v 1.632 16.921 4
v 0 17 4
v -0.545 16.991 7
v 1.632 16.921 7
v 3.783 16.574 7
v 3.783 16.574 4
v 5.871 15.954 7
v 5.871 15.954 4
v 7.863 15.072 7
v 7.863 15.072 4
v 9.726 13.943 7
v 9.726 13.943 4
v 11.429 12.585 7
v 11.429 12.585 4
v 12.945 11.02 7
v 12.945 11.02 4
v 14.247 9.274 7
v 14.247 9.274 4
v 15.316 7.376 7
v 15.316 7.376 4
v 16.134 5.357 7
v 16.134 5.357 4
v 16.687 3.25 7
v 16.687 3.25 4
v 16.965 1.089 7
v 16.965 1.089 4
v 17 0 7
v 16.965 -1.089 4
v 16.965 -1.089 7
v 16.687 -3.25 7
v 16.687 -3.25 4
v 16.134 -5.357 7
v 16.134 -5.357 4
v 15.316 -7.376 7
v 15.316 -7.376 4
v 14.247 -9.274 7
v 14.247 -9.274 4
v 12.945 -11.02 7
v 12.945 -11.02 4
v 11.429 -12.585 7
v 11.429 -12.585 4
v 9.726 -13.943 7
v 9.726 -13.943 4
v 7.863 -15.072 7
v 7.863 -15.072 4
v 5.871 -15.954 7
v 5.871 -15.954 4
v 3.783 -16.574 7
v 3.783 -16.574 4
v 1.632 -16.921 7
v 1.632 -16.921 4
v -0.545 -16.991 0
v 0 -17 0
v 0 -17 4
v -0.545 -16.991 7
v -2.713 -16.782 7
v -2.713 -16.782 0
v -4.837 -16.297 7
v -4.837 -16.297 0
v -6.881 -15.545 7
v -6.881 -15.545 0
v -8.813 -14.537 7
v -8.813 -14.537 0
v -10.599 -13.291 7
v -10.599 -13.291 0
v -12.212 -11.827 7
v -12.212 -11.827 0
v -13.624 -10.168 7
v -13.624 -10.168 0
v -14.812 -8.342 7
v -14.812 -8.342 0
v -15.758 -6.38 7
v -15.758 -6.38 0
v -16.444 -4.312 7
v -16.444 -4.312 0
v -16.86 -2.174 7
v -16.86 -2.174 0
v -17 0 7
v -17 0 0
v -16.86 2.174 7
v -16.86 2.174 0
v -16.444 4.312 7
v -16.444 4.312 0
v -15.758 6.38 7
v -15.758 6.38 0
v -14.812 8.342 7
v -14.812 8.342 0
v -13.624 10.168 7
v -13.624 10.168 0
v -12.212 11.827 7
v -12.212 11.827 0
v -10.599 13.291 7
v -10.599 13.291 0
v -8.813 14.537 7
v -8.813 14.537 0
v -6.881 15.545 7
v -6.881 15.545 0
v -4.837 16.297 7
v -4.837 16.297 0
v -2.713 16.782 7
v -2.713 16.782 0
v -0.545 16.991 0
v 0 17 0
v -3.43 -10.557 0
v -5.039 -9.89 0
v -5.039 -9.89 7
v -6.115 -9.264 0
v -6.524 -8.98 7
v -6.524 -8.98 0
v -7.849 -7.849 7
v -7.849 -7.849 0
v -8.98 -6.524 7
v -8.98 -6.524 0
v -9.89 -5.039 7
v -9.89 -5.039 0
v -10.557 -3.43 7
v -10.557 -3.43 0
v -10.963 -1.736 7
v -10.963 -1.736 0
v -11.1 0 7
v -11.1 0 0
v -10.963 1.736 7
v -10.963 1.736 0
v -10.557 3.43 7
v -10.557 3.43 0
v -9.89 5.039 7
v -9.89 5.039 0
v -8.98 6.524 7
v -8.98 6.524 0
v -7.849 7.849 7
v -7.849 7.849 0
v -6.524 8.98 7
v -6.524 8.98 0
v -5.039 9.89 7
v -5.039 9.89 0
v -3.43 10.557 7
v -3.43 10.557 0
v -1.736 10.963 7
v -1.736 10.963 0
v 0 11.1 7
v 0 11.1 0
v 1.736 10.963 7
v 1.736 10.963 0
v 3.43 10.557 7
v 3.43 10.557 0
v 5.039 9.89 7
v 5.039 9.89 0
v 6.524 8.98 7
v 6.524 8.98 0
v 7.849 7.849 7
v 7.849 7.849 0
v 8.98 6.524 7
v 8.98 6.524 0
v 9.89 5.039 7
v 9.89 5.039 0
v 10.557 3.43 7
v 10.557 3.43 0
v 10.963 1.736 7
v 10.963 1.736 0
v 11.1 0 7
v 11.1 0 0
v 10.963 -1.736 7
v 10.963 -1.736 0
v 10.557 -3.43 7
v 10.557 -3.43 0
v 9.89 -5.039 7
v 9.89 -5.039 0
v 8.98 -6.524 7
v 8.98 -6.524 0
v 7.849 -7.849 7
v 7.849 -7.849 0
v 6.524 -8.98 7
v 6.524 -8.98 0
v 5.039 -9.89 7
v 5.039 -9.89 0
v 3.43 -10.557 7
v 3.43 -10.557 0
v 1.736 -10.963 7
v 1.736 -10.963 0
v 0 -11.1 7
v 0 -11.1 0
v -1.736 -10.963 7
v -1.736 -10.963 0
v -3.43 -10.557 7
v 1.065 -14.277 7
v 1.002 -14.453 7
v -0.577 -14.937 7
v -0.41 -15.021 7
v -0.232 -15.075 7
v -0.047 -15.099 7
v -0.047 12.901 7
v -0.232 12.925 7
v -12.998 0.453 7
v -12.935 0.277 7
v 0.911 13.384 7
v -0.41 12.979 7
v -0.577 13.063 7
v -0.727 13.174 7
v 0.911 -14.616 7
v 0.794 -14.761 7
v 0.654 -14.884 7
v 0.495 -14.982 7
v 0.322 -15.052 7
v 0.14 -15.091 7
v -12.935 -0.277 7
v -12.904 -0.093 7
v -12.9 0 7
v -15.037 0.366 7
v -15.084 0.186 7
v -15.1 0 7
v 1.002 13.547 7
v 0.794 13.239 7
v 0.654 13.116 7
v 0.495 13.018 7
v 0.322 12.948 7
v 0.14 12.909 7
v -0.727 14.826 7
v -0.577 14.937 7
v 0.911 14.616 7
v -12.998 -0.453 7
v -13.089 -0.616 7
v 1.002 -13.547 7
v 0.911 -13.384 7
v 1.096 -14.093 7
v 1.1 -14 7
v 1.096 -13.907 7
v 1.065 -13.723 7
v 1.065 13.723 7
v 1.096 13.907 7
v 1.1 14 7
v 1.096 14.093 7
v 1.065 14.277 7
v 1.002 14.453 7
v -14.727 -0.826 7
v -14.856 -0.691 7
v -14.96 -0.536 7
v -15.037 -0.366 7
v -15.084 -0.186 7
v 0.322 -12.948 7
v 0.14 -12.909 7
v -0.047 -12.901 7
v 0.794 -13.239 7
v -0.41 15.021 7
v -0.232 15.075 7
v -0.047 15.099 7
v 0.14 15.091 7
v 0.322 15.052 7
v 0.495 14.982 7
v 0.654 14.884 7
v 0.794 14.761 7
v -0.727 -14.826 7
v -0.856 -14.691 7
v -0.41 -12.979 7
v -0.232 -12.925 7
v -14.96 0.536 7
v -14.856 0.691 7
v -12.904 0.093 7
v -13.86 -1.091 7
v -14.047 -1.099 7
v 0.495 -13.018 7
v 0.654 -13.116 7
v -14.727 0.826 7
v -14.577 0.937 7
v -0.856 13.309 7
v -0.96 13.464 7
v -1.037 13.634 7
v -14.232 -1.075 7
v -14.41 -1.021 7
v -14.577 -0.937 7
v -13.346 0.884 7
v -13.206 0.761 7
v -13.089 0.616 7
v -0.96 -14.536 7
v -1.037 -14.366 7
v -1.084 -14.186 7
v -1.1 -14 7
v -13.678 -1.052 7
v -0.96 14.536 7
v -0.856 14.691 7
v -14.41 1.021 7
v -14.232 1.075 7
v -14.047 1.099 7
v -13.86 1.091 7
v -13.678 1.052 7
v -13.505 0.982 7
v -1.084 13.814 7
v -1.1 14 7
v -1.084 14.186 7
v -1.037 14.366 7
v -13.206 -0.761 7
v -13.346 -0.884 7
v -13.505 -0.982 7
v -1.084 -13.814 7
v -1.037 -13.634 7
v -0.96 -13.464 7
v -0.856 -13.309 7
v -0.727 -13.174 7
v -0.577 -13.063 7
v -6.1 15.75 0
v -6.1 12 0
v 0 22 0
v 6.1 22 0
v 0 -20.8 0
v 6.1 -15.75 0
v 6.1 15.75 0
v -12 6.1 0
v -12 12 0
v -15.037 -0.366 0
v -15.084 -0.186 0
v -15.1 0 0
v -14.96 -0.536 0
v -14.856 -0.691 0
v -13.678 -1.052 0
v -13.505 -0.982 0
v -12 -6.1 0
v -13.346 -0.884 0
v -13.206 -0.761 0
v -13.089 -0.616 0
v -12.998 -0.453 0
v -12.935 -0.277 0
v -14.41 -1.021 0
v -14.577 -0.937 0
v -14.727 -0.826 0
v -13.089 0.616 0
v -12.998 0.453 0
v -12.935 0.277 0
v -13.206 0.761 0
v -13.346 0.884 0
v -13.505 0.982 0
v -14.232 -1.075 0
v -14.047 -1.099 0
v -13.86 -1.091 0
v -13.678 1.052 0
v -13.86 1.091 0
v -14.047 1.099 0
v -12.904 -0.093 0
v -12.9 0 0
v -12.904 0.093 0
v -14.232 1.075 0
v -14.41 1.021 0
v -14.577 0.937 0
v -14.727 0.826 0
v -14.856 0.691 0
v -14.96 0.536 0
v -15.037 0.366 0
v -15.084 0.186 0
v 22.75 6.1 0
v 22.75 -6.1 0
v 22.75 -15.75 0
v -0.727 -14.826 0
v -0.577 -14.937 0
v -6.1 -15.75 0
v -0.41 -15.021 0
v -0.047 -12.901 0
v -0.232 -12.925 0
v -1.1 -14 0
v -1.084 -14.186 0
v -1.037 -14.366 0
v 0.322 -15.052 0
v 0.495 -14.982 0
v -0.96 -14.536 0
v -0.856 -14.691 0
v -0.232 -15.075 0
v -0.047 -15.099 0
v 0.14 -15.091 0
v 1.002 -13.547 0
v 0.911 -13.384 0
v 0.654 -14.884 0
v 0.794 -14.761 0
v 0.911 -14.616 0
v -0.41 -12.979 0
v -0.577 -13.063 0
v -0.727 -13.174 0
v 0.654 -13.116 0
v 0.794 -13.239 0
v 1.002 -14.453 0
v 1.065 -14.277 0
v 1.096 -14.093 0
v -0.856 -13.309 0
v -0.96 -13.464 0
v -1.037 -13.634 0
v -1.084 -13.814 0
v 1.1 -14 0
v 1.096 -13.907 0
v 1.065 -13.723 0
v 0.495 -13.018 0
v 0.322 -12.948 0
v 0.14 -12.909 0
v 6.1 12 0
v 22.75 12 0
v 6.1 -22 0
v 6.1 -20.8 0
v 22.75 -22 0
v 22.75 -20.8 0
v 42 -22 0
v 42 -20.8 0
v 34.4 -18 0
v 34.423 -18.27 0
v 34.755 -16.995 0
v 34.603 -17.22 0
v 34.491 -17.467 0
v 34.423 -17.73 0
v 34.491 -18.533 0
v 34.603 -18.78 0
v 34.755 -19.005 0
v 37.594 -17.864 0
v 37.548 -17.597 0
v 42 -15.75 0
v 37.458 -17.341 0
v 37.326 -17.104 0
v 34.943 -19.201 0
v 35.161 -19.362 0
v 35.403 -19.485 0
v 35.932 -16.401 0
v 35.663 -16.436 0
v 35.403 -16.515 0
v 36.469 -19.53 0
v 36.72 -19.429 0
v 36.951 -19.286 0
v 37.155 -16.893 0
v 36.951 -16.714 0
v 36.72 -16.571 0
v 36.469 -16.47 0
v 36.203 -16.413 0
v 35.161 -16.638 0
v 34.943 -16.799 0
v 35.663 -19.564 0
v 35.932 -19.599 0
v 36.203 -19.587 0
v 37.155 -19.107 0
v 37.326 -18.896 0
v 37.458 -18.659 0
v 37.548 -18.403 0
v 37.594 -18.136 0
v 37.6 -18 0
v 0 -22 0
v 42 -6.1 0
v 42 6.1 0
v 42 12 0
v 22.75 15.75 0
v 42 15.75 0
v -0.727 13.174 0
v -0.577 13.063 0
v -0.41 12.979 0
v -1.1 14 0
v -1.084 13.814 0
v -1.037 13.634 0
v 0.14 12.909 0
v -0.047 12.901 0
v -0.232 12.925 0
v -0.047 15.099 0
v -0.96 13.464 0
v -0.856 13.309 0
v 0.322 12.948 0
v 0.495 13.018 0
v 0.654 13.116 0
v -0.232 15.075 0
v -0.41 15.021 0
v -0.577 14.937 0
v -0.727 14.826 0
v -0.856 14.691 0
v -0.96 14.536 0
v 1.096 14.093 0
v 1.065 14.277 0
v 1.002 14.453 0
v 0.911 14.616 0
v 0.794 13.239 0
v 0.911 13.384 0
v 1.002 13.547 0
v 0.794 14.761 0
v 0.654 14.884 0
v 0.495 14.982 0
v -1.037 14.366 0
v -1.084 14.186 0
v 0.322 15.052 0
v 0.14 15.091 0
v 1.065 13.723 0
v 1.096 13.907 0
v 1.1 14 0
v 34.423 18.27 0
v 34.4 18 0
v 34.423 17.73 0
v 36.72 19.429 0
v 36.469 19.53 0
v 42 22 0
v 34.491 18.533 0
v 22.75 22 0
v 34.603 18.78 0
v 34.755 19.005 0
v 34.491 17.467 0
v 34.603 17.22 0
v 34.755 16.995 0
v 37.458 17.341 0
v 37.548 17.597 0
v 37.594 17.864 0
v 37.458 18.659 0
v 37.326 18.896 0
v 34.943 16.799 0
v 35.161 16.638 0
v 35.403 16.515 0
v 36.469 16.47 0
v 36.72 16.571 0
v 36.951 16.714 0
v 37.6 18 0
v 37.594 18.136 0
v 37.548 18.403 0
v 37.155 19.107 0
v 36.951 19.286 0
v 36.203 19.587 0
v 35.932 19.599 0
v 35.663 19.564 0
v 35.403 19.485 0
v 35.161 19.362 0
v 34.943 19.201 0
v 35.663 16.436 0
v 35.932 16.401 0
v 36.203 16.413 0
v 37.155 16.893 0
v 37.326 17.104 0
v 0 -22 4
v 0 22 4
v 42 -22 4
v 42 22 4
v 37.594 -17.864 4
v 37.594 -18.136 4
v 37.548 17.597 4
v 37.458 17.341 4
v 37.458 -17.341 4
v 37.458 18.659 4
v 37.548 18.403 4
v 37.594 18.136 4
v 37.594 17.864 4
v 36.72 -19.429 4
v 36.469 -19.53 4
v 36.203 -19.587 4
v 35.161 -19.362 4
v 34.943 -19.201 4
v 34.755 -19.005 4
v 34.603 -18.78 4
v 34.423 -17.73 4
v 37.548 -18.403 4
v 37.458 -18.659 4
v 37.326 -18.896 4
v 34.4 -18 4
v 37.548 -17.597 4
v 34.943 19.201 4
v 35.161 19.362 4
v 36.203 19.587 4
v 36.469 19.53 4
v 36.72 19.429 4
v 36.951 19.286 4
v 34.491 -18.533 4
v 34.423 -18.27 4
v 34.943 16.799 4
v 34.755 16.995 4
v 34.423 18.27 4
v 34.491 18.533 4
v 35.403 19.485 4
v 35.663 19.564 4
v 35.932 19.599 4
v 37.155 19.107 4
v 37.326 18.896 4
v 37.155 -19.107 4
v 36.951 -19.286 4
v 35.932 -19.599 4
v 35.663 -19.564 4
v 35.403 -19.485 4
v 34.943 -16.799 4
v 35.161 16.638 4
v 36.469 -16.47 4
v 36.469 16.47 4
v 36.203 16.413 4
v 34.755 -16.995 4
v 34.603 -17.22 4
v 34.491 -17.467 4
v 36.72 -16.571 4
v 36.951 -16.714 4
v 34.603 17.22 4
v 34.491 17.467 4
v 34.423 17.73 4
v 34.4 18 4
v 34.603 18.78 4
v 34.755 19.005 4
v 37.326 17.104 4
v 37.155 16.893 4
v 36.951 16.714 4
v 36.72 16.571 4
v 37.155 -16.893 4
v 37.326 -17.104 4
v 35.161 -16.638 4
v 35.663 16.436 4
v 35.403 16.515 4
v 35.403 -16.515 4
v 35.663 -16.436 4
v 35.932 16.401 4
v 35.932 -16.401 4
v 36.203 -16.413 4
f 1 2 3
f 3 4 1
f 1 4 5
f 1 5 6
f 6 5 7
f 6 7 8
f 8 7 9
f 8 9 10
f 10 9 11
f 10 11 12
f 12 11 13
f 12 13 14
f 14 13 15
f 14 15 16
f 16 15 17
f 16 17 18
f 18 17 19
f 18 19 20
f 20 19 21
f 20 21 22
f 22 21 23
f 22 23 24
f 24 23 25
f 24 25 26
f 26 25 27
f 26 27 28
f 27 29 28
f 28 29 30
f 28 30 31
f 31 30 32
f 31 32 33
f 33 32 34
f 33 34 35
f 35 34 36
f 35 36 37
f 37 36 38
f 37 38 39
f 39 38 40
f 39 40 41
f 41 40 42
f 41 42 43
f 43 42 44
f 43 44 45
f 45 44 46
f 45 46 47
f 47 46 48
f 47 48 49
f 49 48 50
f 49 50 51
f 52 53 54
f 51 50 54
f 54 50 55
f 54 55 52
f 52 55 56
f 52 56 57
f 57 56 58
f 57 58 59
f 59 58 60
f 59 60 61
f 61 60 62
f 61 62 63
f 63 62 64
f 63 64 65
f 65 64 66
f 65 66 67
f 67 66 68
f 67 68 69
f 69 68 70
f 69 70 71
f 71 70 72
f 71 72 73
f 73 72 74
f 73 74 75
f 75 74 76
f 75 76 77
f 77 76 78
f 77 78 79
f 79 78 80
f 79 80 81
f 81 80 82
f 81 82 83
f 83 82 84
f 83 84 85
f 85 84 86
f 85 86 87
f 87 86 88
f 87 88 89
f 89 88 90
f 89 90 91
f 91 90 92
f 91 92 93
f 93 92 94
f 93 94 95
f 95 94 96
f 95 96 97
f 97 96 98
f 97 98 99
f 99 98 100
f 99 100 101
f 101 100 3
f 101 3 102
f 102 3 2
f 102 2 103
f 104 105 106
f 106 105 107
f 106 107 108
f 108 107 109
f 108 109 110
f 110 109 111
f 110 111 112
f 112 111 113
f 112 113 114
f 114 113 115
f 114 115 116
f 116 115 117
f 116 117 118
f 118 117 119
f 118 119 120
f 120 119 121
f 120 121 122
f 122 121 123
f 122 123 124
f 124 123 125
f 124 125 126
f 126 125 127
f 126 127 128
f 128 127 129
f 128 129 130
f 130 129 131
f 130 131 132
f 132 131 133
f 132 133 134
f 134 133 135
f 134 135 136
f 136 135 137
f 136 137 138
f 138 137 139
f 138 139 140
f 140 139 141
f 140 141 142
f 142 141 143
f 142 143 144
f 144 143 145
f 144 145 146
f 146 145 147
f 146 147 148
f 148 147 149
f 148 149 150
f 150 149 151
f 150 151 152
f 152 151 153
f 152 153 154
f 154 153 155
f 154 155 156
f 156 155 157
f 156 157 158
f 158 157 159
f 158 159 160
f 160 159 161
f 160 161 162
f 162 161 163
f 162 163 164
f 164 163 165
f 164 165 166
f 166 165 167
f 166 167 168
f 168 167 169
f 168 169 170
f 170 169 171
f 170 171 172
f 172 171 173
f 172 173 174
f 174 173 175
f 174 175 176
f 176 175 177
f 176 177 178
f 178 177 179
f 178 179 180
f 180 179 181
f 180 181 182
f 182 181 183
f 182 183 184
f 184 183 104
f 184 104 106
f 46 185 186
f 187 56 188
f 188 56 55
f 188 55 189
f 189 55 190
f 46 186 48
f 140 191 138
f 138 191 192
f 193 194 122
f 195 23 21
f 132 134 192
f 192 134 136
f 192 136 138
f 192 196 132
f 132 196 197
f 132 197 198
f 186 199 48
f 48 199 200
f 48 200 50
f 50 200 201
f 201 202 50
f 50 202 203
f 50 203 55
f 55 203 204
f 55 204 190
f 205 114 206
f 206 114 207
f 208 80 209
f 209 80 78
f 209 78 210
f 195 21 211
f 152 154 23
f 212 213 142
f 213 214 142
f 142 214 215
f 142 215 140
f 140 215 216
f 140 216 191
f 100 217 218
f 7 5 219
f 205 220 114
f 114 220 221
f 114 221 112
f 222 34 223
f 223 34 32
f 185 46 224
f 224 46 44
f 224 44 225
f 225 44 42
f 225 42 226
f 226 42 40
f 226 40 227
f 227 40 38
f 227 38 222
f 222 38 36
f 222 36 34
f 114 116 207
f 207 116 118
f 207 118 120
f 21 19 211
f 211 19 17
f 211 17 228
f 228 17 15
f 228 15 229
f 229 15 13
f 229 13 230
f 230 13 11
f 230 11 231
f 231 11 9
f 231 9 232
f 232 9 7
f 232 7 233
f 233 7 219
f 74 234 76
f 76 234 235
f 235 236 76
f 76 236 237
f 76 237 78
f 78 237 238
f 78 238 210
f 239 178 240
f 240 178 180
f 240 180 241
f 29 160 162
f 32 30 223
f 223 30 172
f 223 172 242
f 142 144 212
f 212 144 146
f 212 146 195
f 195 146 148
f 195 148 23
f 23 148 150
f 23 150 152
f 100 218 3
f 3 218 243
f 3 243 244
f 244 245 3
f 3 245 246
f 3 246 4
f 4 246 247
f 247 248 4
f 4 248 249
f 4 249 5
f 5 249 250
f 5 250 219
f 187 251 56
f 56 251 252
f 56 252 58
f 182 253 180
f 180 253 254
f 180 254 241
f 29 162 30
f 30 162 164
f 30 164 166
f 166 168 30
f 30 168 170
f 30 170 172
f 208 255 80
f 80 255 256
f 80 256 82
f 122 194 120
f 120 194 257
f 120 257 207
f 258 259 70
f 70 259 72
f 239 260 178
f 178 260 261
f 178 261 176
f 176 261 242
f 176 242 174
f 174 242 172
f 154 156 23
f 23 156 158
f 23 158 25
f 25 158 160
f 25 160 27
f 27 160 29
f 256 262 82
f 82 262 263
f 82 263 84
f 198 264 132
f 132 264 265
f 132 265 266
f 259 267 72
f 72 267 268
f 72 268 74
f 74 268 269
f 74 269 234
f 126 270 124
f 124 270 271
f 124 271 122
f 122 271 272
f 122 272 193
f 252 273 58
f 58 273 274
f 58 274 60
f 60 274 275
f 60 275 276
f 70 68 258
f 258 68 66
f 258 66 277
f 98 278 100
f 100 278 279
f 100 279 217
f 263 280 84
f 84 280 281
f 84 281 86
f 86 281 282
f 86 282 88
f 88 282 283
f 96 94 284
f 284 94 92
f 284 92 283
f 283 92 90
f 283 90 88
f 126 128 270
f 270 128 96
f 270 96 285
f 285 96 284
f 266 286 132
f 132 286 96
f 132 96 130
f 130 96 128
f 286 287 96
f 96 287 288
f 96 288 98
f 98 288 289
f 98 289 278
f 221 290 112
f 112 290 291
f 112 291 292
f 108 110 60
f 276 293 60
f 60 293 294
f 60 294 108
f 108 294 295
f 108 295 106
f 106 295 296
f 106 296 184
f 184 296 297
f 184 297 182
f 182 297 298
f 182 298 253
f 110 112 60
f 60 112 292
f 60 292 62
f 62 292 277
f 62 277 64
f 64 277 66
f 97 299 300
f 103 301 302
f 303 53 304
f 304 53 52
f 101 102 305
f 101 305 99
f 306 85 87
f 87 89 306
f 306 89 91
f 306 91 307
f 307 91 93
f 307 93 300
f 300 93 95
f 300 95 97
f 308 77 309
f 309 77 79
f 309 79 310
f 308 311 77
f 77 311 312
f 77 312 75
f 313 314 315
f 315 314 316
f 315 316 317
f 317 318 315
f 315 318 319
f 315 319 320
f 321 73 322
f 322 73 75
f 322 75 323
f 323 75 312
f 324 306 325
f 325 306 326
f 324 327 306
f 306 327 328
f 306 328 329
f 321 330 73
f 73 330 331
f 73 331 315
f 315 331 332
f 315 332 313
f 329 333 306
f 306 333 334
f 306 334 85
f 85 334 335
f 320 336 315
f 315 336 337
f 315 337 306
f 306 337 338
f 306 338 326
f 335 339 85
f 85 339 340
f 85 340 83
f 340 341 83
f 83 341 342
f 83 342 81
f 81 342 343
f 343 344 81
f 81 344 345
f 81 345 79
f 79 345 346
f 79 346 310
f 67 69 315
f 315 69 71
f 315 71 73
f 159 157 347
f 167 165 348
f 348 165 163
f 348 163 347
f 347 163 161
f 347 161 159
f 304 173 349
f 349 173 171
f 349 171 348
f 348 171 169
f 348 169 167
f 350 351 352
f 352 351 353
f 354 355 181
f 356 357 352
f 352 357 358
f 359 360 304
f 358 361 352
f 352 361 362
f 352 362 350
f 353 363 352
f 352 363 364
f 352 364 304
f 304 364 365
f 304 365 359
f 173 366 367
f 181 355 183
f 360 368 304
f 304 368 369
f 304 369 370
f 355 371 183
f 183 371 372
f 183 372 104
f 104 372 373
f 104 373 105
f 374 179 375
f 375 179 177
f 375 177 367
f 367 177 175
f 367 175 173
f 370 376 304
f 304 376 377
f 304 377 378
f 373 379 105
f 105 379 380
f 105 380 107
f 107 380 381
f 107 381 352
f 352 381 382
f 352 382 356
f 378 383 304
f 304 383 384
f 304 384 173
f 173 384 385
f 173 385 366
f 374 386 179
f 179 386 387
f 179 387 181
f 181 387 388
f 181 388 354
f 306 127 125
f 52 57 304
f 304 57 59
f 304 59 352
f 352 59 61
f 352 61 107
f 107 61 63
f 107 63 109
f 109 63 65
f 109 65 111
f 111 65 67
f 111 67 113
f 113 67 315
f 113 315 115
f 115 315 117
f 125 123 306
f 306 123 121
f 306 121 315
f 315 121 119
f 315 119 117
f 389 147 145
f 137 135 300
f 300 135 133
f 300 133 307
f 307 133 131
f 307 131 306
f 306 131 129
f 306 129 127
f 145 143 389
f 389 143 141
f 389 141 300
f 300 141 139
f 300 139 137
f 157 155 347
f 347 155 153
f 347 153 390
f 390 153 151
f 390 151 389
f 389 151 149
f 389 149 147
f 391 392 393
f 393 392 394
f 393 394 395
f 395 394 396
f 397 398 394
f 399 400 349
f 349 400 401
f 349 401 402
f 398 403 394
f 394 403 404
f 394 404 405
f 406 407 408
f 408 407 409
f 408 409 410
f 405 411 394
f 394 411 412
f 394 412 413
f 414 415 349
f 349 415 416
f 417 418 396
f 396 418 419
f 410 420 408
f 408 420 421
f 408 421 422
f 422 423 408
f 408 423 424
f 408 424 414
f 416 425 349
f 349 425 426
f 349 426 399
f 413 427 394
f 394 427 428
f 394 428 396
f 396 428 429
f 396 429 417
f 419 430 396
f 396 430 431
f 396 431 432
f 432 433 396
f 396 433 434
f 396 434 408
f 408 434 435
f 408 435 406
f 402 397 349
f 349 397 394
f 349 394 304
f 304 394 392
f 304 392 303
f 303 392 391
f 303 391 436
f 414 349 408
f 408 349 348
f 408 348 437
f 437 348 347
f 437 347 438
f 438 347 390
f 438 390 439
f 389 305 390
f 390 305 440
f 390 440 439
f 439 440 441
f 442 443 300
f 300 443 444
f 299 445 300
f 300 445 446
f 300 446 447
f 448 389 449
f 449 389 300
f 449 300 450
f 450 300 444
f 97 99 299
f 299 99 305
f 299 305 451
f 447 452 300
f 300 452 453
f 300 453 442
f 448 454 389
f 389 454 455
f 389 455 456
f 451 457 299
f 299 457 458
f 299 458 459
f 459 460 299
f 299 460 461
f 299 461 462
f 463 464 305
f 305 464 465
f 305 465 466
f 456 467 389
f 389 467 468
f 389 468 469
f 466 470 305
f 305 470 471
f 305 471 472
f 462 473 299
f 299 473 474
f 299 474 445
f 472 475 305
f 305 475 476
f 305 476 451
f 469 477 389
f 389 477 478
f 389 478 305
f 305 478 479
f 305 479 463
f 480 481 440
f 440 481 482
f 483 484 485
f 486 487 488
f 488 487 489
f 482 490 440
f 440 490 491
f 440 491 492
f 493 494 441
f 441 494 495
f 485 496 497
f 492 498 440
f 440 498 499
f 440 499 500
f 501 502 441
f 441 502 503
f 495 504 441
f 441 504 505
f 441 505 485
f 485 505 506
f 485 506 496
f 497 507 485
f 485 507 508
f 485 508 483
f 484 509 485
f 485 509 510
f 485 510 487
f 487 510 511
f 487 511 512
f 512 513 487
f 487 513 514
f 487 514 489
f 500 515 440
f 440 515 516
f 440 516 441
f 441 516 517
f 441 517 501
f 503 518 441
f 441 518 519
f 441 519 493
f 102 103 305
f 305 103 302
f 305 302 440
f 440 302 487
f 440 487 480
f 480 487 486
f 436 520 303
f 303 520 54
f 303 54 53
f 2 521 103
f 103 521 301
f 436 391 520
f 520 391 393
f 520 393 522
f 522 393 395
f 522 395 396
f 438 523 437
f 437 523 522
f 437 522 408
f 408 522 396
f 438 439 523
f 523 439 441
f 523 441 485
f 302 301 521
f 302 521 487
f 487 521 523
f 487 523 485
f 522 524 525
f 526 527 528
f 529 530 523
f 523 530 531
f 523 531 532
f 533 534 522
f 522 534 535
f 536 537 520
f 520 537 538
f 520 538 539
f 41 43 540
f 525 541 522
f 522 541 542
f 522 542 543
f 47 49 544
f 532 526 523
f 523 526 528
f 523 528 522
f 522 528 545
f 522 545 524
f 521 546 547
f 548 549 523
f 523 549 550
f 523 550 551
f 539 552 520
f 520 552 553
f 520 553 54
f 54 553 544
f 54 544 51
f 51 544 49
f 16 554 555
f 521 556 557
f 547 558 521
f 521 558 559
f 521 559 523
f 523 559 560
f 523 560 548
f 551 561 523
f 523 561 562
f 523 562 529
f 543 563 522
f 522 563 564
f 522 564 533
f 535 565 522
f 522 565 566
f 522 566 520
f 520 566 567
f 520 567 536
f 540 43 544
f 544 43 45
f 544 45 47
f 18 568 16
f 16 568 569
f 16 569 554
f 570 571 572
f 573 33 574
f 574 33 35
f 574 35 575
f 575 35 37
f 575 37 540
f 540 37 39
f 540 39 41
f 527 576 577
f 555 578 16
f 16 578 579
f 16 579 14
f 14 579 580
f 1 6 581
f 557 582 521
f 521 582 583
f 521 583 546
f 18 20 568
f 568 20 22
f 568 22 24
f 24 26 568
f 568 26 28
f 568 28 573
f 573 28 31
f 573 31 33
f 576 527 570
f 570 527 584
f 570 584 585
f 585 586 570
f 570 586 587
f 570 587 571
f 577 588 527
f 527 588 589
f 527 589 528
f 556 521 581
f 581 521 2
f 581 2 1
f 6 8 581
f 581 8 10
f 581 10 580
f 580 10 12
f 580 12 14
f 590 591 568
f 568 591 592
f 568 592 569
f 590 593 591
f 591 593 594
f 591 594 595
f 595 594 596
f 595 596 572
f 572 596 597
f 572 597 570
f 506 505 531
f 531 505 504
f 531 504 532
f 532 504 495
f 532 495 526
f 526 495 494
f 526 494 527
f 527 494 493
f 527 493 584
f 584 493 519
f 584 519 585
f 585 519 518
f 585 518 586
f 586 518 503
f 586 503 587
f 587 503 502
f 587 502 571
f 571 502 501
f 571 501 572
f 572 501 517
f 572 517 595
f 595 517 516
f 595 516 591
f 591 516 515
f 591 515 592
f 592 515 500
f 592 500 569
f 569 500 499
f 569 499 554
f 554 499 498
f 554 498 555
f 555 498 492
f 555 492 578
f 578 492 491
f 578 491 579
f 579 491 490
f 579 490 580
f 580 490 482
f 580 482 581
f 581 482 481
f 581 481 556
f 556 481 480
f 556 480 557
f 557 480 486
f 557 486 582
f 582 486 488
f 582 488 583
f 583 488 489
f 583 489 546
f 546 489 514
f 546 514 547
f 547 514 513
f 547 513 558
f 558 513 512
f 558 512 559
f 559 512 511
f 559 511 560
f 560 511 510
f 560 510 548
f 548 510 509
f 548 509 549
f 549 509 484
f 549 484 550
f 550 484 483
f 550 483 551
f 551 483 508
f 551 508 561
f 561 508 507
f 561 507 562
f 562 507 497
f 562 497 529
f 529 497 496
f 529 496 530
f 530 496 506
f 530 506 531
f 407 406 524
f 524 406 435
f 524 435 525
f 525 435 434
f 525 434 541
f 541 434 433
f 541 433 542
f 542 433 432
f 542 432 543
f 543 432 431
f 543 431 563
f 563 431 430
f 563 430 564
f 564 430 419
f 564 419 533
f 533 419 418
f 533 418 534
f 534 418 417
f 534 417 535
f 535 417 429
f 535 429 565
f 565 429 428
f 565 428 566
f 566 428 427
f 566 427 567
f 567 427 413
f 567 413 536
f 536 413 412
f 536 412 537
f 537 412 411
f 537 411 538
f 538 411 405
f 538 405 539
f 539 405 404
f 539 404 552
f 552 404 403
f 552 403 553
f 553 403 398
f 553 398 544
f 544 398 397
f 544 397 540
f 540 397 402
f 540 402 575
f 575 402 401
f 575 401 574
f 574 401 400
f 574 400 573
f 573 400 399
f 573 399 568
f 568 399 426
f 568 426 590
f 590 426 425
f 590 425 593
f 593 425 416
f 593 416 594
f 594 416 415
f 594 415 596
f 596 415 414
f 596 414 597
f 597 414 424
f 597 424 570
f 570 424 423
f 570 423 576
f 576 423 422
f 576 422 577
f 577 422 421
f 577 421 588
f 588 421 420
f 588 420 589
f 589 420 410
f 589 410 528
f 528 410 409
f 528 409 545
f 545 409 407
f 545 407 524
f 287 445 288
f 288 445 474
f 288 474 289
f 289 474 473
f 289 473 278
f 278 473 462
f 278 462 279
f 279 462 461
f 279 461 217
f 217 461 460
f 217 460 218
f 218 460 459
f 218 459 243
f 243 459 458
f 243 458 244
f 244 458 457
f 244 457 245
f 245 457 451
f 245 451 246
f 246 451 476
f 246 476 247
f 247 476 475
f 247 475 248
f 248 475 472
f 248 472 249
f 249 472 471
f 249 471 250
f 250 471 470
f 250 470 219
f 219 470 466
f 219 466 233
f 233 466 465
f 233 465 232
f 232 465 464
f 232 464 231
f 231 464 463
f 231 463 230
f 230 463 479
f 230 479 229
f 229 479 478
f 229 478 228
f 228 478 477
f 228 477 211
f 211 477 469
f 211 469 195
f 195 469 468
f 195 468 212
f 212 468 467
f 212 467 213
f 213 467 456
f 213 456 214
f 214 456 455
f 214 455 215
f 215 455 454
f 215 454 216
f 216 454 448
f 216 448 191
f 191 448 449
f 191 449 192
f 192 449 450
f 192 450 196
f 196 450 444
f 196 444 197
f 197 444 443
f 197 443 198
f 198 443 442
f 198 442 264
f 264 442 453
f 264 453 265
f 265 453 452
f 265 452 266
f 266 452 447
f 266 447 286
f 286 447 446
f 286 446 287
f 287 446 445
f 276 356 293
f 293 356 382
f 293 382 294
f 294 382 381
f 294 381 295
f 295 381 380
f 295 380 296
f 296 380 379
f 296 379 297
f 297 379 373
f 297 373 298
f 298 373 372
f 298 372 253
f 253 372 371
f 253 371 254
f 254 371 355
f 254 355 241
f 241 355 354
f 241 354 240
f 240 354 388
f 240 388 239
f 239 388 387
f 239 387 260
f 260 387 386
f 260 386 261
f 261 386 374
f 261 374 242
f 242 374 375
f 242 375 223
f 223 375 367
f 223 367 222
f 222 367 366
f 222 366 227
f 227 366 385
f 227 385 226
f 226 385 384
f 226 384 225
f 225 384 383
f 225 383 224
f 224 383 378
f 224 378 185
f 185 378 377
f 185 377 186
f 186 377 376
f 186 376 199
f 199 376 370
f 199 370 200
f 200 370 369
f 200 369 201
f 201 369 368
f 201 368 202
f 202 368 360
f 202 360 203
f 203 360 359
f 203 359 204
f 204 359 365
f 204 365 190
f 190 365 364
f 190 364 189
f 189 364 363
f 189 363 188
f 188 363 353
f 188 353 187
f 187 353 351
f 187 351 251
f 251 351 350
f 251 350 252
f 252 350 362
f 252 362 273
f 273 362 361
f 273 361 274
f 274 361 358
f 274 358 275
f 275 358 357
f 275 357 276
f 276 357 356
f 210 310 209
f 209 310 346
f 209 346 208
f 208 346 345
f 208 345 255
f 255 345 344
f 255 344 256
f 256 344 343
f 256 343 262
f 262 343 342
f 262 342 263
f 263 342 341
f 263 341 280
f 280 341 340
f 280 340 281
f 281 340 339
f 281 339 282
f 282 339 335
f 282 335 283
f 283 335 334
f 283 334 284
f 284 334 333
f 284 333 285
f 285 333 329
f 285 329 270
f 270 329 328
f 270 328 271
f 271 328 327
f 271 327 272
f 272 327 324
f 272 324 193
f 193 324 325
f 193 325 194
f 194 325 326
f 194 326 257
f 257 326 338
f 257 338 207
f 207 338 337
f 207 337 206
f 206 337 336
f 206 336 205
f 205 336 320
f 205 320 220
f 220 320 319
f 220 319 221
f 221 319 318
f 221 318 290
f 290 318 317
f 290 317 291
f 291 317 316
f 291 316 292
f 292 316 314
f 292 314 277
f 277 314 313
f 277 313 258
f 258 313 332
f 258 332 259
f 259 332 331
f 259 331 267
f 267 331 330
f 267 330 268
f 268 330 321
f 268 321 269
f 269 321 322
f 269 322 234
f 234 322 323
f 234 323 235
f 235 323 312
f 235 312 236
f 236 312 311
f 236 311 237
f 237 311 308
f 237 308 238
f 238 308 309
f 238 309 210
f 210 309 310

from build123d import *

# Parameters (mm, degrees)
BEARING_HOUSING_PROFILE_R          = 17
BEARING_HOUSING_PROFILE_R_2        = 11.1
BEARING_HOUSING_DEPTH              = 7
MOUNTING_WEB_PROFILE_W             = 42
MOUNTING_WEB_PROFILE_H             = 44
MOUNTING_WEB_DEPTH                 = 4
BEARING_SEAT_START                 = -50
BEARING_SEAT_PROFILE_R             = 11.1
BEARING_SEAT_DEPTH                 = 98.927027865
STANDOFF_FASTENERS_START           = -50
STANDOFF_FASTENERS_PROFILE_R       = 1.6
STANDOFF_FASTENERS_DEPTH           = 98.927027865
BEARING_KEEPER_FASTENERS_START     = -50
BEARING_KEEPER_FASTENERS_PROFILE_R = 1.1
BEARING_KEEPER_FASTENERS_DEPTH     = 98.927027865


with BuildPart() as part:
    # Bearing_housing_profile → Bearing_housing (new body)
    with BuildSketch(Plane.XY):
        Circle(BEARING_HOUSING_PROFILE_R)
        Circle(BEARING_HOUSING_PROFILE_R_2, mode=Mode.SUBTRACT)
    extrude(amount=BEARING_HOUSING_DEPTH)

    # Mounting_web_profile → Mounting_web (add)
    with BuildSketch(Plane.XY):
        with Locations((21, 0)):
            Rectangle(MOUNTING_WEB_PROFILE_W, MOUNTING_WEB_PROFILE_H)
    extrude(amount=MOUNTING_WEB_DEPTH)

    # Bearing_seat_profile → Bearing_seat (cut, through all)
    with BuildSketch(Plane.XY.offset(BEARING_SEAT_START)):
        Circle(BEARING_SEAT_PROFILE_R)
    extrude(amount=BEARING_SEAT_DEPTH, mode=Mode.SUBTRACT)

    # Standoff_fasteners_profile → Standoff_fasteners (cut, through all)
    with BuildSketch(Plane.XY.offset(STANDOFF_FASTENERS_START)):
        with Locations(Location((36, -18, 0), (0, 0, 180))):
            Circle(STANDOFF_FASTENERS_PROFILE_R)
        with Locations(Location((36, 18, 0), (0, 0, 180))):
            Circle(STANDOFF_FASTENERS_PROFILE_R)
    extrude(amount=STANDOFF_FASTENERS_DEPTH, mode=Mode.SUBTRACT)

    # Bearing_keeper_fasteners_profile → Bearing_keeper_fasteners (cut, through all)
    with BuildSketch(Plane.XY.offset(BEARING_KEEPER_FASTENERS_START)):
        with Locations(Location((-14, 0, 0), (0, 0, 180))):
            Circle(BEARING_KEEPER_FASTENERS_PROFILE_R)
        with Locations(Location((0, -14, 0), (0, 0, 180))):
            Circle(BEARING_KEEPER_FASTENERS_PROFILE_R)
        with Locations(Location((0, 14, 0), (0, 0, 180))):
            Circle(BEARING_KEEPER_FASTENERS_PROFILE_R)
    extrude(amount=BEARING_KEEPER_FASTENERS_DEPTH, mode=Mode.SUBTRACT)


solid = part.part
